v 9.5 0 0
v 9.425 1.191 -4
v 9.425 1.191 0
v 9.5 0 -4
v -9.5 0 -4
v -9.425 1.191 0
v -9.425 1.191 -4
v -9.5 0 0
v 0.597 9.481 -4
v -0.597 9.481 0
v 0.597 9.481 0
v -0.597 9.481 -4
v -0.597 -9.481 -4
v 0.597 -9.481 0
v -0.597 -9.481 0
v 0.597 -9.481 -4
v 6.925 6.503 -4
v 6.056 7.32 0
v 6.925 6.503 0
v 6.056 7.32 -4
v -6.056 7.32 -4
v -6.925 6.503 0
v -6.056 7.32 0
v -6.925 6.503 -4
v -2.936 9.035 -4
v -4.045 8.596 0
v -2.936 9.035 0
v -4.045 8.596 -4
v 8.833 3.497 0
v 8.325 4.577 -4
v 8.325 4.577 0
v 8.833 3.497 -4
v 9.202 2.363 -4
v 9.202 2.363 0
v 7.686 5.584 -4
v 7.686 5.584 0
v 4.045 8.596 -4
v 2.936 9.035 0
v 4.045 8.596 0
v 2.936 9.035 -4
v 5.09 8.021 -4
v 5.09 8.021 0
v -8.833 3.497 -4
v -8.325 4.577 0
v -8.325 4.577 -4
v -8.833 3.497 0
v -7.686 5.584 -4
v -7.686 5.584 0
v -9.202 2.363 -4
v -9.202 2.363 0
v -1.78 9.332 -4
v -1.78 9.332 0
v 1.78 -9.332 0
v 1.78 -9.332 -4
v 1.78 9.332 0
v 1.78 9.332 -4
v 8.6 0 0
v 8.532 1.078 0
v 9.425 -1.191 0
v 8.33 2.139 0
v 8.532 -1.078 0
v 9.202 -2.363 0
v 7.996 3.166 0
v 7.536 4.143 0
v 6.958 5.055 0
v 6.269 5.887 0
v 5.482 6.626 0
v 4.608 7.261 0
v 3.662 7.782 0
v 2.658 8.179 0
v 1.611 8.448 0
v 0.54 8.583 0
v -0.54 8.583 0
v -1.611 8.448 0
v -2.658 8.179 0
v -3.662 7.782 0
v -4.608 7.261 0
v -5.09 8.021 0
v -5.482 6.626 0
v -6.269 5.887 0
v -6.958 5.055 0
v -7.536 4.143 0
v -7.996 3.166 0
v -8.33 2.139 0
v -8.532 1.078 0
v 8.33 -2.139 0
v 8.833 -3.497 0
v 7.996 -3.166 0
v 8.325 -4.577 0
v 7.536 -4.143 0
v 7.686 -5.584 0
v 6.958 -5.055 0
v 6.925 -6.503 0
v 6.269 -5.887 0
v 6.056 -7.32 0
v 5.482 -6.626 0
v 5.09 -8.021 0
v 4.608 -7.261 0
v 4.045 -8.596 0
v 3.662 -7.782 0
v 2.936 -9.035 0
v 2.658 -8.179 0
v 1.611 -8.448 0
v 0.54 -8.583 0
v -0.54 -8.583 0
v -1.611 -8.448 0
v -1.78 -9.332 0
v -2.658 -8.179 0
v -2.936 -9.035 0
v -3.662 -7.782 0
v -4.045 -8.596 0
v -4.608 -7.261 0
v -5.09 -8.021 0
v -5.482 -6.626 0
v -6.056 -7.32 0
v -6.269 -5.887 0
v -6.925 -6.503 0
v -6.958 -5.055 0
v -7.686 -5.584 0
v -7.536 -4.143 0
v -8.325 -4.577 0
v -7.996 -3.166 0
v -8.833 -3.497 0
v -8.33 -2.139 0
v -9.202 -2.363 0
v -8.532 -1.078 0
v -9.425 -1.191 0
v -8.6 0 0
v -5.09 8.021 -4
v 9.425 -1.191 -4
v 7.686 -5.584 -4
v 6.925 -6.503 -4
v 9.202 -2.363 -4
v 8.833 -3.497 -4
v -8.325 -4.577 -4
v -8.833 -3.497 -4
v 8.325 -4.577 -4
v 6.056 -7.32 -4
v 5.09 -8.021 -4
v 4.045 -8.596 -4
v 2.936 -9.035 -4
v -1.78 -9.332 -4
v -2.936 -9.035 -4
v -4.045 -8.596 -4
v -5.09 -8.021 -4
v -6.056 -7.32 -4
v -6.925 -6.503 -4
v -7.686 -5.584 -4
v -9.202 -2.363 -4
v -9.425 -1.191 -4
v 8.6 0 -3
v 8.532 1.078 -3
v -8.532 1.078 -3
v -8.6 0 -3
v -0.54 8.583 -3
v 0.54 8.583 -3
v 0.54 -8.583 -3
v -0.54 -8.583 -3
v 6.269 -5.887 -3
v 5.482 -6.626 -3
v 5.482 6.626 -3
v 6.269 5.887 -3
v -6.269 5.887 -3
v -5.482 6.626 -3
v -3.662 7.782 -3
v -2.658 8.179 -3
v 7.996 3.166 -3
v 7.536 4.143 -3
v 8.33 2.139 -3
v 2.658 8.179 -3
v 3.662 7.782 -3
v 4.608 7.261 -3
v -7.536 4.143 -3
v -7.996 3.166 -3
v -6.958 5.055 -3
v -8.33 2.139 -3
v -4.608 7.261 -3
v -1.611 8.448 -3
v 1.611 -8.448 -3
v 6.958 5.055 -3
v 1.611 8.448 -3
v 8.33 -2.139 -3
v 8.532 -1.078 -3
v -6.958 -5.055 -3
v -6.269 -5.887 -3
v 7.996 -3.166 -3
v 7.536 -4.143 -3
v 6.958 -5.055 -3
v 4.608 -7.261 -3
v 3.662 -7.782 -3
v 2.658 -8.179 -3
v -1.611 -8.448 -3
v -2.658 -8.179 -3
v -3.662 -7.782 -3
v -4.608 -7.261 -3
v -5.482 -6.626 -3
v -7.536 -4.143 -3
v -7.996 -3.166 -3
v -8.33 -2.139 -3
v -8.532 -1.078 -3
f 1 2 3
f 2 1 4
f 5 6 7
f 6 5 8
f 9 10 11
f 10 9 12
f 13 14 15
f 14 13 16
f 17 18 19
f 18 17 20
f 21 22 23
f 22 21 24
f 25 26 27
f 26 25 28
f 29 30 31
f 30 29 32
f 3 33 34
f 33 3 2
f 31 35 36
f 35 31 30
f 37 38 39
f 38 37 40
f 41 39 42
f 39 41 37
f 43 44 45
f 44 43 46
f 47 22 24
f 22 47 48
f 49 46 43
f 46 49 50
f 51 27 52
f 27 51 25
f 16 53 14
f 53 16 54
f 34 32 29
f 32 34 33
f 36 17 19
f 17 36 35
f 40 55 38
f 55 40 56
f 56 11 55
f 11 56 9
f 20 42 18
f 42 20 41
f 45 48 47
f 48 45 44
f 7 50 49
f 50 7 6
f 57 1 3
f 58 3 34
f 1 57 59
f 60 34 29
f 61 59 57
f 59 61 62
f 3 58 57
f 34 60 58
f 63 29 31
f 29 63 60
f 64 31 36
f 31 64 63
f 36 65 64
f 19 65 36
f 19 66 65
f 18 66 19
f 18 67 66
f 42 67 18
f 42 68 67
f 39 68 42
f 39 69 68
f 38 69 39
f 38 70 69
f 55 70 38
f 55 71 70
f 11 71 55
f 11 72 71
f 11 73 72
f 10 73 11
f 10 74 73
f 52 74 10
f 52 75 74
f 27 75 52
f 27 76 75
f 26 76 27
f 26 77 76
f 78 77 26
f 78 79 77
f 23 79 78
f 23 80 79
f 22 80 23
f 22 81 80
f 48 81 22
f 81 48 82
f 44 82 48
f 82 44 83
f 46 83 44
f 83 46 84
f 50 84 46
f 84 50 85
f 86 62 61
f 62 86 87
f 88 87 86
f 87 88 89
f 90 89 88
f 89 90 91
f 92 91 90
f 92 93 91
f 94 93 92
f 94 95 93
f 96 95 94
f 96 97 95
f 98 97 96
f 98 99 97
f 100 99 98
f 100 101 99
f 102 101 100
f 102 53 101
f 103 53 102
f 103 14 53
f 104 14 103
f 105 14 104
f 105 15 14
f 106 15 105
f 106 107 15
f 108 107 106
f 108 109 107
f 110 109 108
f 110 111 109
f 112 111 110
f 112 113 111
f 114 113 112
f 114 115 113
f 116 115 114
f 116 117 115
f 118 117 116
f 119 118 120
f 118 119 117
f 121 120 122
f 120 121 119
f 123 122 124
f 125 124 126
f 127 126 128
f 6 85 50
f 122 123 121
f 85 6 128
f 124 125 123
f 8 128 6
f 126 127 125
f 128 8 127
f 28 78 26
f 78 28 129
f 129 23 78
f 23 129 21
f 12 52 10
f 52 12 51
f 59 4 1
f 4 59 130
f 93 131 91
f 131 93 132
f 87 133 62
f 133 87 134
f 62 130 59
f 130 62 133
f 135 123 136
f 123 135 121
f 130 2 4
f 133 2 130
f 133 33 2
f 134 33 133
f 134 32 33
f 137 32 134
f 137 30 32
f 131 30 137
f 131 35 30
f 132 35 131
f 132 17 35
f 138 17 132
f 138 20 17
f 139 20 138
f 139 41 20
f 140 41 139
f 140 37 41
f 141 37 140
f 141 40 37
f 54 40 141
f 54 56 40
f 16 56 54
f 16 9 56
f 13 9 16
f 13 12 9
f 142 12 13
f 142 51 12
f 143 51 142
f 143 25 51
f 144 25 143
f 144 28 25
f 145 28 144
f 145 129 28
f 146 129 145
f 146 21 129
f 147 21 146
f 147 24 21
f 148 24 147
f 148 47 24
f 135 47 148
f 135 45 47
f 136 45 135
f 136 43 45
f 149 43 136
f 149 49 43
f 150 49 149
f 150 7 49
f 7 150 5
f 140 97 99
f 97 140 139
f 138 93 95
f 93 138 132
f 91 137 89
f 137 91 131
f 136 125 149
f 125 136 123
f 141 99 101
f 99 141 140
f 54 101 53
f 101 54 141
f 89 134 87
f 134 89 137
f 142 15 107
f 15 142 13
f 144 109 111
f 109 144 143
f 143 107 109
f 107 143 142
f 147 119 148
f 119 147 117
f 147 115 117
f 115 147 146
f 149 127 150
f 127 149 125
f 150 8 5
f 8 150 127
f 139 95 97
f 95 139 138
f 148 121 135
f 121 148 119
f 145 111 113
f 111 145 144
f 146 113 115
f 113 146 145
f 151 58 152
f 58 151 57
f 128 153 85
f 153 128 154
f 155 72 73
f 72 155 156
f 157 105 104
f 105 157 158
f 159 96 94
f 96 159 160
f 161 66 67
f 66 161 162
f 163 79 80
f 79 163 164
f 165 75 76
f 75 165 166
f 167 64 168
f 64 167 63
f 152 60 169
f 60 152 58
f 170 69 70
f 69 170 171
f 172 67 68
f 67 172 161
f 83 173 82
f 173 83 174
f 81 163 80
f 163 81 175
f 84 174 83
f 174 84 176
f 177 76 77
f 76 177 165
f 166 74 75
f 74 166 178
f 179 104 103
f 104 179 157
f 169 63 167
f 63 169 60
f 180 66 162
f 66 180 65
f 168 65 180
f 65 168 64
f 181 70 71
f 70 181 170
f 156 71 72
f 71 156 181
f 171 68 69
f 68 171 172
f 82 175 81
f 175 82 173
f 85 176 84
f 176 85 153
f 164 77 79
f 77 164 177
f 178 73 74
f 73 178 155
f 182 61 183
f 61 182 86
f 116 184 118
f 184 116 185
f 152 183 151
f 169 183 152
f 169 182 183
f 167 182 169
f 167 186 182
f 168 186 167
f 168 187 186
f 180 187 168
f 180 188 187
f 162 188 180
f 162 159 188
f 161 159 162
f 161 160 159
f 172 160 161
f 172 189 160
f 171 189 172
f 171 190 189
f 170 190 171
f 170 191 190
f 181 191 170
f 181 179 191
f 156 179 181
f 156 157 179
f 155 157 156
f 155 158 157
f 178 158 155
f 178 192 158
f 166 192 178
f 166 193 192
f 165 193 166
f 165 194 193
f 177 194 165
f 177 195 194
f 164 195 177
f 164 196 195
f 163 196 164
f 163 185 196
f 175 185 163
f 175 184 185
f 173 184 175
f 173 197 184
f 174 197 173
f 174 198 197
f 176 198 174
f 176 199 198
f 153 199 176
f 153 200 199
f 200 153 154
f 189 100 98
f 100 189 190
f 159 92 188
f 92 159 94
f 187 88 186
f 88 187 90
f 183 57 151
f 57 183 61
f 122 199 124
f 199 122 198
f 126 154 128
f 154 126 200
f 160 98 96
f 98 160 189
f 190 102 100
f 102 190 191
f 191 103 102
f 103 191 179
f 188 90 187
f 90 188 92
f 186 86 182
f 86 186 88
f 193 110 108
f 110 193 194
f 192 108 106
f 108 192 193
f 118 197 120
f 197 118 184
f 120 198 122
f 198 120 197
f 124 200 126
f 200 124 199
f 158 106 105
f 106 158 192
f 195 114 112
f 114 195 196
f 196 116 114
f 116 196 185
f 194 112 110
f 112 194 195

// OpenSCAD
$fn = 50;


difference() {
	union() {
		translate(v = [0, 0, -4.0000000000]) {
			cylinder(h = 4, r = 9.5000000000);
		}
	}
	union() {
		#translate(v = [0, 0, -3.0000000000]) {
			cylinder(h = 3, r = 8.6000000000);
		}
	}
}
